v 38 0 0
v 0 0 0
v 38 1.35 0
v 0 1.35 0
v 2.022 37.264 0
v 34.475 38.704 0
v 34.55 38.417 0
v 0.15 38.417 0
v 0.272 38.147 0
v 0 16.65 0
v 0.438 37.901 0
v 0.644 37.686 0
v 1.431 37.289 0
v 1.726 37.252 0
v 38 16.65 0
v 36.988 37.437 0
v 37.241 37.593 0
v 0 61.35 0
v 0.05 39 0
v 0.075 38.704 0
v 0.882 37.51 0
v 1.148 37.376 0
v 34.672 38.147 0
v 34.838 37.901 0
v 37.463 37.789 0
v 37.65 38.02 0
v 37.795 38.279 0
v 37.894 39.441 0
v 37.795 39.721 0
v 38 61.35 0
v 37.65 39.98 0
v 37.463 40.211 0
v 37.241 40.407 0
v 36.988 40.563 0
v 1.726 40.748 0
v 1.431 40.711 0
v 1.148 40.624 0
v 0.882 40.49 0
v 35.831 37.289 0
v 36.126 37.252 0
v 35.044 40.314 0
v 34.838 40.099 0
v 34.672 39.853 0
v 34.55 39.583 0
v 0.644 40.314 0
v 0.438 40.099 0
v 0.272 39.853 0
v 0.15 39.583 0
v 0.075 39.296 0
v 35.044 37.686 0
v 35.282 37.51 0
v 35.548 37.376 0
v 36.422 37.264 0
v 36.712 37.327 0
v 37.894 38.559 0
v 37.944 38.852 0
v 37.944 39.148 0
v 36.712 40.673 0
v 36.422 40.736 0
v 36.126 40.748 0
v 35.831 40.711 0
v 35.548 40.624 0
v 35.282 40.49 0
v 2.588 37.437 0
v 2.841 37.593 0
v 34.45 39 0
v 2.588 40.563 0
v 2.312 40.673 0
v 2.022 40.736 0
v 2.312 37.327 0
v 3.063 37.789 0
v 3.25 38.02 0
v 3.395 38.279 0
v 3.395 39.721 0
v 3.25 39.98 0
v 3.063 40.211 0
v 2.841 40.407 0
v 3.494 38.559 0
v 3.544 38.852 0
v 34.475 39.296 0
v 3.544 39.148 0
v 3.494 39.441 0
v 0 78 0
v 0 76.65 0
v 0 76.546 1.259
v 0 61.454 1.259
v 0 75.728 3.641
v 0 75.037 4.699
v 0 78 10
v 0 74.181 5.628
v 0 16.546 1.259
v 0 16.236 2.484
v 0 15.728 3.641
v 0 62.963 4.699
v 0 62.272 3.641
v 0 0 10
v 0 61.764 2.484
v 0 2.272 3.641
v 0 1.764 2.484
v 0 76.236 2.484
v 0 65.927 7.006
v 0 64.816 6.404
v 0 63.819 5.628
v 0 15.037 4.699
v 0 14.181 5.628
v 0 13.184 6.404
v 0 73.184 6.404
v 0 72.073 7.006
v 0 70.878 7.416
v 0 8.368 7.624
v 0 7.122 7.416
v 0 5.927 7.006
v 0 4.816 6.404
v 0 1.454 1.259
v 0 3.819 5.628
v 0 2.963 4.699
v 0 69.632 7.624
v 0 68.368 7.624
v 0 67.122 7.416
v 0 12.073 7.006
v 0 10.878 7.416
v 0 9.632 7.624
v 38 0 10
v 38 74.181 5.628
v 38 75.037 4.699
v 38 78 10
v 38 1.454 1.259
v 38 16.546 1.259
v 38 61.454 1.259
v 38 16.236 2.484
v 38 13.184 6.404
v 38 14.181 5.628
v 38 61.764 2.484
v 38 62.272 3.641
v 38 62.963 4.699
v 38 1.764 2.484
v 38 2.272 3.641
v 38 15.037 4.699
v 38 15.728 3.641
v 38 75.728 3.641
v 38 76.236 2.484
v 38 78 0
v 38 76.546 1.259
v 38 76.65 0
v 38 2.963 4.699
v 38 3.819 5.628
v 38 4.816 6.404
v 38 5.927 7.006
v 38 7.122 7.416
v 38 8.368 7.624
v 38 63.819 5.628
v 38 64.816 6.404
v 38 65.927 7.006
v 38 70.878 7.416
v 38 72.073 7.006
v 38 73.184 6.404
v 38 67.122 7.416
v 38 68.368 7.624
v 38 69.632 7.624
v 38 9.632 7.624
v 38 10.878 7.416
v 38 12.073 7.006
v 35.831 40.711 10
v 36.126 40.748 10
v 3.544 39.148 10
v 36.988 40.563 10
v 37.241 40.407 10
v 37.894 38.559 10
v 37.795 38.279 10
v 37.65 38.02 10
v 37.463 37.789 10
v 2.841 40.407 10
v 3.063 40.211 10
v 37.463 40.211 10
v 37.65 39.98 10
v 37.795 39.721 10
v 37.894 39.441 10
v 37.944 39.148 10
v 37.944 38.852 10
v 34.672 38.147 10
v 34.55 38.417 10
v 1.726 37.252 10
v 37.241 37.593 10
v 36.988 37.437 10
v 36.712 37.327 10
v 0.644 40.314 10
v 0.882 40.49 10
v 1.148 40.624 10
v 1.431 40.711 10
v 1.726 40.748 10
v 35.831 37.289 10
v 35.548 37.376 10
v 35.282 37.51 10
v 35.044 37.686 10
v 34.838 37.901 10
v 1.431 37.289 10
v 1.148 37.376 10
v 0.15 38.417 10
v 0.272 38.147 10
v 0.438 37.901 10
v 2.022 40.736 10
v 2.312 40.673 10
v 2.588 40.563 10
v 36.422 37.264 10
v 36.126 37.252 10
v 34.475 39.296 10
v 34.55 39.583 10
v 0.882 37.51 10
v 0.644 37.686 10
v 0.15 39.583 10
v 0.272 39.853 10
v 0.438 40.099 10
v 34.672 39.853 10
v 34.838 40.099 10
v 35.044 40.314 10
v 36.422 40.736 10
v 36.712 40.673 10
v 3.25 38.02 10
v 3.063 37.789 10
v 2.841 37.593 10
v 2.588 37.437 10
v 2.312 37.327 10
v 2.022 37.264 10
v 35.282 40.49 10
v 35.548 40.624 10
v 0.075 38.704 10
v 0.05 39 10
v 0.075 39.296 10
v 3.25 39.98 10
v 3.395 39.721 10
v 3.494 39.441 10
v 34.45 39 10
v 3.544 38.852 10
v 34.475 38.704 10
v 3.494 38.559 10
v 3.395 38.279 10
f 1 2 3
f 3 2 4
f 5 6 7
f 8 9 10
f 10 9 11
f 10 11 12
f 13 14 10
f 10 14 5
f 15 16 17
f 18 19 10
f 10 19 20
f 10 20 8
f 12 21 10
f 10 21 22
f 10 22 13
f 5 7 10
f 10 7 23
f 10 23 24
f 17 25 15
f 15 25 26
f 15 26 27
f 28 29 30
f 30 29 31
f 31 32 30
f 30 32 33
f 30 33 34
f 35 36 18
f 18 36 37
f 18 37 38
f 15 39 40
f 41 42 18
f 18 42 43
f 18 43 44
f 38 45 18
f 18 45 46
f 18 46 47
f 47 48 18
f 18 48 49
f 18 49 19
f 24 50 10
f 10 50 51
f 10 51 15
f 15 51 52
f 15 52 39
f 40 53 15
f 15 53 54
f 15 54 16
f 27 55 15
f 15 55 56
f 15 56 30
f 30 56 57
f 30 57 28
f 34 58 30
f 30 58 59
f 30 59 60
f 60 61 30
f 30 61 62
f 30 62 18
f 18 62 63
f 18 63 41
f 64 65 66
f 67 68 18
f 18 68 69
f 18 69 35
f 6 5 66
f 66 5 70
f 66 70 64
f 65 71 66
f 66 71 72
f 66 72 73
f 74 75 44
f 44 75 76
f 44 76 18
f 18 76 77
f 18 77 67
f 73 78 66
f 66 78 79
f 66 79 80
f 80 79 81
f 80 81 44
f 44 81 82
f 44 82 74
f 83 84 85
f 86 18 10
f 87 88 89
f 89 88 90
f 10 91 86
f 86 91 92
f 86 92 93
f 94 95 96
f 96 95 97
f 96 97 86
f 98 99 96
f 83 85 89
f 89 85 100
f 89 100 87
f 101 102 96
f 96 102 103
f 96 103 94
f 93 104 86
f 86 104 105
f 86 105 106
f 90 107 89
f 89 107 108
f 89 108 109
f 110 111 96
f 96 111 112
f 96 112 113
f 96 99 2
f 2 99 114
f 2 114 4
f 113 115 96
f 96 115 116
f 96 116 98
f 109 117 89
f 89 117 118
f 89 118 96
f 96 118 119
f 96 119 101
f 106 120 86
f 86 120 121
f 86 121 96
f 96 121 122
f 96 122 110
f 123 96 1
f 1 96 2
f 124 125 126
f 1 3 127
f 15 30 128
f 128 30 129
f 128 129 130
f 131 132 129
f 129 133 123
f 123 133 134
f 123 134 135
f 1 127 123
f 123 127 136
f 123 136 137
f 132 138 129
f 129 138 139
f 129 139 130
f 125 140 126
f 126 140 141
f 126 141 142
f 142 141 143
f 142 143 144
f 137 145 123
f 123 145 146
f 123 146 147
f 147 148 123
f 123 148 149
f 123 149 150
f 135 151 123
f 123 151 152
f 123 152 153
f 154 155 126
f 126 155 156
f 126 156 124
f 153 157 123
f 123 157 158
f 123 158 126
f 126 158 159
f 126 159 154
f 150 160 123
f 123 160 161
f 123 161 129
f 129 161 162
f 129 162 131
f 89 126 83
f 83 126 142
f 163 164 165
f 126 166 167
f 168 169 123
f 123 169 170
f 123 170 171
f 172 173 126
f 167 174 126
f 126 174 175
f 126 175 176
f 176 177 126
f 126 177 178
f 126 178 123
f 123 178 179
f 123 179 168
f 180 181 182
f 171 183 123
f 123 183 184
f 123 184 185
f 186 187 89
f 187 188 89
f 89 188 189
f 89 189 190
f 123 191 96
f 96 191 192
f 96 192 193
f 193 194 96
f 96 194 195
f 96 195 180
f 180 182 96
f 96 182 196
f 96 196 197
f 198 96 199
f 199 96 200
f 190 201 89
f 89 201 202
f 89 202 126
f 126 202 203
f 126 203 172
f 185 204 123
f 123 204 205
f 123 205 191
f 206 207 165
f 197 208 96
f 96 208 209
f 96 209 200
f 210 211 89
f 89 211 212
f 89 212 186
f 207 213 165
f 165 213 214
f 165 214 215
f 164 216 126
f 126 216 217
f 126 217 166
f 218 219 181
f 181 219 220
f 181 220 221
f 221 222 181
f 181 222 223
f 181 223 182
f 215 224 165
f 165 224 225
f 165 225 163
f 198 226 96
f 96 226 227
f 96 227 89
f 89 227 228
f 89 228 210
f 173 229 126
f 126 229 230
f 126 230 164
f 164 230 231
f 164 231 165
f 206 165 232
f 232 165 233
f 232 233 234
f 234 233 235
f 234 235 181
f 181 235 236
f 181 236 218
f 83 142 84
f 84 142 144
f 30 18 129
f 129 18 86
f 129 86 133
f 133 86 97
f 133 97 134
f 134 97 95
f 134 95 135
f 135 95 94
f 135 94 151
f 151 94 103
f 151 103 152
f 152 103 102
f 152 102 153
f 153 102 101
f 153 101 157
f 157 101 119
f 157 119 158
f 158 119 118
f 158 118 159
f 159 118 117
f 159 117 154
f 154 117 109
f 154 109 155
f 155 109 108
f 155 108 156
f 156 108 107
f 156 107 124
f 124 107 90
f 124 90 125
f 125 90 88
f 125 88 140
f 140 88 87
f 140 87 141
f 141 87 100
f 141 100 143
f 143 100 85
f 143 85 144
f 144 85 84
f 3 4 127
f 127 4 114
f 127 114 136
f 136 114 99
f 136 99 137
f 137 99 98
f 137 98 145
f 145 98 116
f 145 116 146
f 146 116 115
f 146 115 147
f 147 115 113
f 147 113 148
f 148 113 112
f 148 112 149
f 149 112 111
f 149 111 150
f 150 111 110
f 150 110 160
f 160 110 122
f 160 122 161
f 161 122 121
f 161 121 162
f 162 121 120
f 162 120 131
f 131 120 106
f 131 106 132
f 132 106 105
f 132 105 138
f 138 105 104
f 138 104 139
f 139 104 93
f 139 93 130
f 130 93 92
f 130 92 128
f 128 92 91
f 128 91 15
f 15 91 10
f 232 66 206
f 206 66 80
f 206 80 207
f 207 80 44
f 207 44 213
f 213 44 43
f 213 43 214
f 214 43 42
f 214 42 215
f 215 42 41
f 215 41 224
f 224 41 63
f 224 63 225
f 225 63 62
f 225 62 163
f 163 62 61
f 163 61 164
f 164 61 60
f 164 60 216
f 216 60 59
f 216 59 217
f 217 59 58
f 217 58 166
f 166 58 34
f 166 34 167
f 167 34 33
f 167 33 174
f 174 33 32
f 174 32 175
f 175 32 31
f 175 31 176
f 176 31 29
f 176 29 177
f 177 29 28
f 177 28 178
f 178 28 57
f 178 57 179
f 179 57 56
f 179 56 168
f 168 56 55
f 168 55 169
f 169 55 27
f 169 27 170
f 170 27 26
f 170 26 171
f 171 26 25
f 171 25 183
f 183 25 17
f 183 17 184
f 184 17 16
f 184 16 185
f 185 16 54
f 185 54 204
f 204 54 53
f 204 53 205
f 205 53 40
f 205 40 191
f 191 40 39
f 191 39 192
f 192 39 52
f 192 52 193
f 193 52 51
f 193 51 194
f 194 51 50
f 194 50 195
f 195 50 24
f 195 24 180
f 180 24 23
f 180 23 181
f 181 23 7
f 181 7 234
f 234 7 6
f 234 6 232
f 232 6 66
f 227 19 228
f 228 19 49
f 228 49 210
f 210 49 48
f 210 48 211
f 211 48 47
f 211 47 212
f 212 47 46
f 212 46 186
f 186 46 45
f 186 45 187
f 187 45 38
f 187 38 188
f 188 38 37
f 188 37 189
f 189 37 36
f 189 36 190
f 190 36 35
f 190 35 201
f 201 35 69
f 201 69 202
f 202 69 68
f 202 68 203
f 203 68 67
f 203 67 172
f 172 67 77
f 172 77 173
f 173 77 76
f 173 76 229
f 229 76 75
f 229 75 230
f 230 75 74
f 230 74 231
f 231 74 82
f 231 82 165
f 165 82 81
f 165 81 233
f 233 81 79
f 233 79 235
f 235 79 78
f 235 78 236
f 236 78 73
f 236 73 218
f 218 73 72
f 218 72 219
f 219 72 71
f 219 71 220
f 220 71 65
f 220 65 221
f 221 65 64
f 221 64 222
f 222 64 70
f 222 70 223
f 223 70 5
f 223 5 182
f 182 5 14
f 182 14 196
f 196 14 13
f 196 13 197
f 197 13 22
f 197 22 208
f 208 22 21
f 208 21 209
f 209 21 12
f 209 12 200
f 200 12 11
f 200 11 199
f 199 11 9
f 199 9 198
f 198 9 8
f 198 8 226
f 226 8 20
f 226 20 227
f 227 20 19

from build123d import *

# Parameters (mm, degrees)
SKETCH1_W           = 38
SKETCH1_H           = 78
BOSS_EXTRUDE1_DEPTH = 10
SKETCH2_R           = 7.65
CUT_EXTRUDE1_DEPTH  = 88.338422244
SKETCH3_R           = 1.75
CUT_EXTRUDE2_DEPTH  = 88.338422244


with BuildPart() as part:
    # Sketch1 → Boss-Extrude1 (new body)
    with BuildSketch(Plane.XY):
        with Locations((19, 39)):
            Rectangle(SKETCH1_W, SKETCH1_H)
    extrude(amount=BOSS_EXTRUDE1_DEPTH)

    # Sketch2 → Cut-Extrude1 (cut, through all)
    with BuildSketch(Plane.ZY):
        with Locations((0, 69)):
            Circle(SKETCH2_R)
        with Locations((0, 9)):
            Circle(SKETCH2_R)
    extrude(amount=-CUT_EXTRUDE1_DEPTH, mode=Mode.SUBTRACT)

    # Sketch3 → Cut-Extrude2 (cut, through all)
    with BuildSketch(Plane(origin=(0, 0, 0), x_dir=(-1, 0, 0), z_dir=(0, 0, -1))):
        with Locations((-36.2, 39)):
            Circle(SKETCH3_R)
        with Locations((-1.8, 39)):
            Circle(SKETCH3_R)
    extrude(amount=-CUT_EXTRUDE2_DEPTH, mode=Mode.SUBTRACT)


solid = part.part
